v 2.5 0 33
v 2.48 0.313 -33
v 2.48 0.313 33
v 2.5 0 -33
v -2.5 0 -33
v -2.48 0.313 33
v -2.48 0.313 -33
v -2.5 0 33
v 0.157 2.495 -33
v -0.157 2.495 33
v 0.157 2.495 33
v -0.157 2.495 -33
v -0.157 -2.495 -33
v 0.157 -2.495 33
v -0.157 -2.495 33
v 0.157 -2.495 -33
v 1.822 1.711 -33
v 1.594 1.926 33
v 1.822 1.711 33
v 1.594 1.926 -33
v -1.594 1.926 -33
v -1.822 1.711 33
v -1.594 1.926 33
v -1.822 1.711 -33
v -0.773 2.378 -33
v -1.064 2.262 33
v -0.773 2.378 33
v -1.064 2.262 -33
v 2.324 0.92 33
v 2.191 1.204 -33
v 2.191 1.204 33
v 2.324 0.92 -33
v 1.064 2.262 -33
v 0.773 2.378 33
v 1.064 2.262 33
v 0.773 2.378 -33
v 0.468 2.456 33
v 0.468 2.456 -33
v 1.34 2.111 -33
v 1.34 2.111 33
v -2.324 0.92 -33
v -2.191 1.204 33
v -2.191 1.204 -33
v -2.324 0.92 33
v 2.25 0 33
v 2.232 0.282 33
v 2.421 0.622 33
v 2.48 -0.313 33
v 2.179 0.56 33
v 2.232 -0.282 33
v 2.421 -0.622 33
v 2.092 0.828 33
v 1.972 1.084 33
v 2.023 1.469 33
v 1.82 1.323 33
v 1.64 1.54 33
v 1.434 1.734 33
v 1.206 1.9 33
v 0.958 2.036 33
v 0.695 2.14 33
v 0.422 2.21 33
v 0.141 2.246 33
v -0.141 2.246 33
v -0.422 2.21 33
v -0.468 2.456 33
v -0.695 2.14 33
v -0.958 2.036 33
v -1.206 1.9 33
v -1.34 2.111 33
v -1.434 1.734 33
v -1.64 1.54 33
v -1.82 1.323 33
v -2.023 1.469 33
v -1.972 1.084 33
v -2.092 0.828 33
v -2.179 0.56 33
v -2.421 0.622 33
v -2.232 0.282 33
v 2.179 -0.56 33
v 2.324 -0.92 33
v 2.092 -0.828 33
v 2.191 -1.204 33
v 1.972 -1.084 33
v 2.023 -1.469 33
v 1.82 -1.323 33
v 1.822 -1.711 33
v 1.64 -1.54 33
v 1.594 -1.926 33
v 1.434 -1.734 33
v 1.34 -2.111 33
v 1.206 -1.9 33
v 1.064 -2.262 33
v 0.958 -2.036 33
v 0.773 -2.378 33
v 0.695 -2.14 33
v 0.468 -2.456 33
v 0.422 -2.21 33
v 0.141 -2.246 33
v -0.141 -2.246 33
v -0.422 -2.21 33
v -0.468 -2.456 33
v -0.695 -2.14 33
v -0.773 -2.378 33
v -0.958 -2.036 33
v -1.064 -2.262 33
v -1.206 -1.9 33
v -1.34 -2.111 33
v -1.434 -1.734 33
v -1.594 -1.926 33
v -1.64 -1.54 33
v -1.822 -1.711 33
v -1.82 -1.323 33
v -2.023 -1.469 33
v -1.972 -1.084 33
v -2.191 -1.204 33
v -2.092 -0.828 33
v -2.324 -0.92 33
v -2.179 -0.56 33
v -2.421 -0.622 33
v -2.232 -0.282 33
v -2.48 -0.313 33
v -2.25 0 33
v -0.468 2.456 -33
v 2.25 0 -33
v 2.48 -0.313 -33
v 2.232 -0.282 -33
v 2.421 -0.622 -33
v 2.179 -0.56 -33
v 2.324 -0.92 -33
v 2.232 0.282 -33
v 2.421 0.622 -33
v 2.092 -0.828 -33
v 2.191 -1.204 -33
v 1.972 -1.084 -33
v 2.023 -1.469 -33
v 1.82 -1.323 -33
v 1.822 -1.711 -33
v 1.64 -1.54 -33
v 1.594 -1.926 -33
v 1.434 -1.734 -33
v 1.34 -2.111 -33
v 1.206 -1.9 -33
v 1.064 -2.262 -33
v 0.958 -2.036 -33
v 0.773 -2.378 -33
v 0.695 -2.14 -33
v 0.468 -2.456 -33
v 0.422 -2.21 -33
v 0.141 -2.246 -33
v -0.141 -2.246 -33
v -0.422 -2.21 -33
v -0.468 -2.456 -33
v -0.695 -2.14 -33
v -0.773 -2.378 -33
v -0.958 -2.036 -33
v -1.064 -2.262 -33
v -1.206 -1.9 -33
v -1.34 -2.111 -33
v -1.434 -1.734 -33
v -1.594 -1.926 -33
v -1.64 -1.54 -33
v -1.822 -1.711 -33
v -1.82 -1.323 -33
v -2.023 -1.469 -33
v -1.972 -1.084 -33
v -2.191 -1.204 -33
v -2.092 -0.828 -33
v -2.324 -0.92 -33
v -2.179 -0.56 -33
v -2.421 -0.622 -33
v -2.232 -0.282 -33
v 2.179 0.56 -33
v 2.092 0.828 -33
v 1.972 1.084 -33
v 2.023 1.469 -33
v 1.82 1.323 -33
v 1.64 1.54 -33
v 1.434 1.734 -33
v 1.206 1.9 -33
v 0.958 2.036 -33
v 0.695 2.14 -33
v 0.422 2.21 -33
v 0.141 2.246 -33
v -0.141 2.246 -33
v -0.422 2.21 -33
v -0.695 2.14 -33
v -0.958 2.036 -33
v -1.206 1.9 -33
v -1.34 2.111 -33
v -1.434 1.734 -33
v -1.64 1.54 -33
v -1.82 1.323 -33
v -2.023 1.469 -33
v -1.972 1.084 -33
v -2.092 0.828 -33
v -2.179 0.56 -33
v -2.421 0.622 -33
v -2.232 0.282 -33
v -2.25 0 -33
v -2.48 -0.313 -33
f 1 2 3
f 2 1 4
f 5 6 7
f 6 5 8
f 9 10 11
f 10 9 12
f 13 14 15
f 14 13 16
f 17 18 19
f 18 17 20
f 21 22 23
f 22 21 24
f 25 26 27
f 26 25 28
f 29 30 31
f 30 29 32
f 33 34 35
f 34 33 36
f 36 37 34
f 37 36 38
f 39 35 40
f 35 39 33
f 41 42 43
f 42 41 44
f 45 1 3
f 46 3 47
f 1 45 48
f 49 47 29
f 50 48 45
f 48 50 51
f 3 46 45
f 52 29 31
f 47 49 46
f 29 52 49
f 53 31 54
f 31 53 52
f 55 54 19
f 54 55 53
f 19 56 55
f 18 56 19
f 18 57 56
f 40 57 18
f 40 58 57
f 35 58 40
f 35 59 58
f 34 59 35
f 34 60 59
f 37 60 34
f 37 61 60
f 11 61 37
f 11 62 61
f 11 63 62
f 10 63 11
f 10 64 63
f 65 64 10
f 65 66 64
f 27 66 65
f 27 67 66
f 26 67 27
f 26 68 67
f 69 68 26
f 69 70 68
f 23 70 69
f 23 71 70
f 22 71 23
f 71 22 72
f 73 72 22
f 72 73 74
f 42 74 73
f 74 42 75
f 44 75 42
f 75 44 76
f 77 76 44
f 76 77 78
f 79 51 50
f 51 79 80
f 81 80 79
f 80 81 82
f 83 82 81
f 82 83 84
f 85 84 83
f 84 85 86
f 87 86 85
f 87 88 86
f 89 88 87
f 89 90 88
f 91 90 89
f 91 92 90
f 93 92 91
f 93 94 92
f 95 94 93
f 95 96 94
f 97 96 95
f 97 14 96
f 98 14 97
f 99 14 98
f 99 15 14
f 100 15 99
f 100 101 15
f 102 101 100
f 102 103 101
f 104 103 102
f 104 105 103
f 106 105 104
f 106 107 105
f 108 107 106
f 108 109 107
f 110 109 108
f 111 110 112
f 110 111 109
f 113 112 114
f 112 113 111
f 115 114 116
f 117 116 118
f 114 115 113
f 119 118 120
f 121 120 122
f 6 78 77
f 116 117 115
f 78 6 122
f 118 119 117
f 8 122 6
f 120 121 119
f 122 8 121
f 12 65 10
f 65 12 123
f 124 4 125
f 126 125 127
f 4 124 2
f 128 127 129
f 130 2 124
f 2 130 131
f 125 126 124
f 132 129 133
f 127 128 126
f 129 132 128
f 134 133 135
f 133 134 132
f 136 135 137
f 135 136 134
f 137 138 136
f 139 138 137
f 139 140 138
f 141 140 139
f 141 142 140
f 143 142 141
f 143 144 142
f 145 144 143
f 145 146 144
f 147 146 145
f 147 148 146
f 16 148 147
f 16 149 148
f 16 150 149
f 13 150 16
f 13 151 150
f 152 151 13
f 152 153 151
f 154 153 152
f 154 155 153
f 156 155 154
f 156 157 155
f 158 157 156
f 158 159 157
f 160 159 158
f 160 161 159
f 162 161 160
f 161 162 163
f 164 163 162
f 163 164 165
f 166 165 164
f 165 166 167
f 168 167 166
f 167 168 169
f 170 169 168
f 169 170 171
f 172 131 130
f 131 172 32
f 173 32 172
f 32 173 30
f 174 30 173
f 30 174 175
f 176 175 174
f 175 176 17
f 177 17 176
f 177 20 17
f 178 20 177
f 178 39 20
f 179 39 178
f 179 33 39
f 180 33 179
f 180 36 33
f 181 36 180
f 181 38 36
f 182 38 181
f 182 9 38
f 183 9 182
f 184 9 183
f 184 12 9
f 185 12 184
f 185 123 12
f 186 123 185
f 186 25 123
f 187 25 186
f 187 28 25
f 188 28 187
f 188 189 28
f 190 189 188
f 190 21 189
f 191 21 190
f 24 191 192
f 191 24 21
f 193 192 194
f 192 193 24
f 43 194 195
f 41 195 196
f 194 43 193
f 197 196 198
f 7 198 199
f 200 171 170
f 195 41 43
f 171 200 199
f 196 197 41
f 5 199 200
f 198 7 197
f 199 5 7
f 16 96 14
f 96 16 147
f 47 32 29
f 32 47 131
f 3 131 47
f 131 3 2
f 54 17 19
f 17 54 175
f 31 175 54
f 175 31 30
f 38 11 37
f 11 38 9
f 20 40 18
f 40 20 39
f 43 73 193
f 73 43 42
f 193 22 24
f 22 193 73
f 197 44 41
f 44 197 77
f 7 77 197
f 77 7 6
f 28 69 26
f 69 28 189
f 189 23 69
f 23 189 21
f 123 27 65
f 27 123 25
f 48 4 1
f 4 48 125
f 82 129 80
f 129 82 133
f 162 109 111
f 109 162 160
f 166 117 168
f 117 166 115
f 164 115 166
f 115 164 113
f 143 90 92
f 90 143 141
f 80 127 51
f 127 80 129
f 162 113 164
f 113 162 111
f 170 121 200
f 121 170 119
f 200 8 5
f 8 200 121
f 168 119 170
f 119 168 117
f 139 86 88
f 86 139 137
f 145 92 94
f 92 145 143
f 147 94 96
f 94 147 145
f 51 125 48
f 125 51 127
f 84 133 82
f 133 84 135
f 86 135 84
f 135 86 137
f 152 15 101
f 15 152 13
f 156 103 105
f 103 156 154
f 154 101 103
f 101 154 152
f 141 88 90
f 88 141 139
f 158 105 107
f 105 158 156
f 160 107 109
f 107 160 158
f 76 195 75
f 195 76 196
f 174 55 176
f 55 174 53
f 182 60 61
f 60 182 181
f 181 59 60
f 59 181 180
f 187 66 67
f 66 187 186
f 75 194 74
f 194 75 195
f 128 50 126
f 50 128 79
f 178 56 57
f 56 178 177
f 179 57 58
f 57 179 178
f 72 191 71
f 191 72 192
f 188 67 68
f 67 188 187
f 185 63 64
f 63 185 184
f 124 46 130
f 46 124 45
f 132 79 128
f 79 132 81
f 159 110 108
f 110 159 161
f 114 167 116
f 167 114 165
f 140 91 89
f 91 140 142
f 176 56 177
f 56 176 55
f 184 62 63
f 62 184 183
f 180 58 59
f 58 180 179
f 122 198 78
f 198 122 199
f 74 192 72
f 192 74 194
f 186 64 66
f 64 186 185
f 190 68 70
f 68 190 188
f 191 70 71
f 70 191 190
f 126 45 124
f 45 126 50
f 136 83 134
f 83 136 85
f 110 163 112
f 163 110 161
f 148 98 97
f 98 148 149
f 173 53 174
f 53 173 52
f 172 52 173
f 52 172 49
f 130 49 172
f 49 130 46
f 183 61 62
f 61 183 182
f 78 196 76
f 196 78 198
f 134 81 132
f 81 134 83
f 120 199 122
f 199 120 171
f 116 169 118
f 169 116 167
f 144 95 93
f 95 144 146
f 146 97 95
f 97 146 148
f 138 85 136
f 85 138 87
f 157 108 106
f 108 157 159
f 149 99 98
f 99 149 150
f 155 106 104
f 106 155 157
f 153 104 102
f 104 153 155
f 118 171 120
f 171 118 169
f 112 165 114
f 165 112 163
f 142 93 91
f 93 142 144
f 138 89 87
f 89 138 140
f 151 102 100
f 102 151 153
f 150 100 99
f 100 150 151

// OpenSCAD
$fn = 50;


difference() {
	union() {
		translate(v = [0, 0, -33.0000000000]) {
			cylinder(h = 66, r = 2.5000000000);
		}
	}
	union() {
		translate(v = [0, 0, -100.0000000000]) {
			cylinder(h = 200, r = 2.2500000000);
		}
	}
}
